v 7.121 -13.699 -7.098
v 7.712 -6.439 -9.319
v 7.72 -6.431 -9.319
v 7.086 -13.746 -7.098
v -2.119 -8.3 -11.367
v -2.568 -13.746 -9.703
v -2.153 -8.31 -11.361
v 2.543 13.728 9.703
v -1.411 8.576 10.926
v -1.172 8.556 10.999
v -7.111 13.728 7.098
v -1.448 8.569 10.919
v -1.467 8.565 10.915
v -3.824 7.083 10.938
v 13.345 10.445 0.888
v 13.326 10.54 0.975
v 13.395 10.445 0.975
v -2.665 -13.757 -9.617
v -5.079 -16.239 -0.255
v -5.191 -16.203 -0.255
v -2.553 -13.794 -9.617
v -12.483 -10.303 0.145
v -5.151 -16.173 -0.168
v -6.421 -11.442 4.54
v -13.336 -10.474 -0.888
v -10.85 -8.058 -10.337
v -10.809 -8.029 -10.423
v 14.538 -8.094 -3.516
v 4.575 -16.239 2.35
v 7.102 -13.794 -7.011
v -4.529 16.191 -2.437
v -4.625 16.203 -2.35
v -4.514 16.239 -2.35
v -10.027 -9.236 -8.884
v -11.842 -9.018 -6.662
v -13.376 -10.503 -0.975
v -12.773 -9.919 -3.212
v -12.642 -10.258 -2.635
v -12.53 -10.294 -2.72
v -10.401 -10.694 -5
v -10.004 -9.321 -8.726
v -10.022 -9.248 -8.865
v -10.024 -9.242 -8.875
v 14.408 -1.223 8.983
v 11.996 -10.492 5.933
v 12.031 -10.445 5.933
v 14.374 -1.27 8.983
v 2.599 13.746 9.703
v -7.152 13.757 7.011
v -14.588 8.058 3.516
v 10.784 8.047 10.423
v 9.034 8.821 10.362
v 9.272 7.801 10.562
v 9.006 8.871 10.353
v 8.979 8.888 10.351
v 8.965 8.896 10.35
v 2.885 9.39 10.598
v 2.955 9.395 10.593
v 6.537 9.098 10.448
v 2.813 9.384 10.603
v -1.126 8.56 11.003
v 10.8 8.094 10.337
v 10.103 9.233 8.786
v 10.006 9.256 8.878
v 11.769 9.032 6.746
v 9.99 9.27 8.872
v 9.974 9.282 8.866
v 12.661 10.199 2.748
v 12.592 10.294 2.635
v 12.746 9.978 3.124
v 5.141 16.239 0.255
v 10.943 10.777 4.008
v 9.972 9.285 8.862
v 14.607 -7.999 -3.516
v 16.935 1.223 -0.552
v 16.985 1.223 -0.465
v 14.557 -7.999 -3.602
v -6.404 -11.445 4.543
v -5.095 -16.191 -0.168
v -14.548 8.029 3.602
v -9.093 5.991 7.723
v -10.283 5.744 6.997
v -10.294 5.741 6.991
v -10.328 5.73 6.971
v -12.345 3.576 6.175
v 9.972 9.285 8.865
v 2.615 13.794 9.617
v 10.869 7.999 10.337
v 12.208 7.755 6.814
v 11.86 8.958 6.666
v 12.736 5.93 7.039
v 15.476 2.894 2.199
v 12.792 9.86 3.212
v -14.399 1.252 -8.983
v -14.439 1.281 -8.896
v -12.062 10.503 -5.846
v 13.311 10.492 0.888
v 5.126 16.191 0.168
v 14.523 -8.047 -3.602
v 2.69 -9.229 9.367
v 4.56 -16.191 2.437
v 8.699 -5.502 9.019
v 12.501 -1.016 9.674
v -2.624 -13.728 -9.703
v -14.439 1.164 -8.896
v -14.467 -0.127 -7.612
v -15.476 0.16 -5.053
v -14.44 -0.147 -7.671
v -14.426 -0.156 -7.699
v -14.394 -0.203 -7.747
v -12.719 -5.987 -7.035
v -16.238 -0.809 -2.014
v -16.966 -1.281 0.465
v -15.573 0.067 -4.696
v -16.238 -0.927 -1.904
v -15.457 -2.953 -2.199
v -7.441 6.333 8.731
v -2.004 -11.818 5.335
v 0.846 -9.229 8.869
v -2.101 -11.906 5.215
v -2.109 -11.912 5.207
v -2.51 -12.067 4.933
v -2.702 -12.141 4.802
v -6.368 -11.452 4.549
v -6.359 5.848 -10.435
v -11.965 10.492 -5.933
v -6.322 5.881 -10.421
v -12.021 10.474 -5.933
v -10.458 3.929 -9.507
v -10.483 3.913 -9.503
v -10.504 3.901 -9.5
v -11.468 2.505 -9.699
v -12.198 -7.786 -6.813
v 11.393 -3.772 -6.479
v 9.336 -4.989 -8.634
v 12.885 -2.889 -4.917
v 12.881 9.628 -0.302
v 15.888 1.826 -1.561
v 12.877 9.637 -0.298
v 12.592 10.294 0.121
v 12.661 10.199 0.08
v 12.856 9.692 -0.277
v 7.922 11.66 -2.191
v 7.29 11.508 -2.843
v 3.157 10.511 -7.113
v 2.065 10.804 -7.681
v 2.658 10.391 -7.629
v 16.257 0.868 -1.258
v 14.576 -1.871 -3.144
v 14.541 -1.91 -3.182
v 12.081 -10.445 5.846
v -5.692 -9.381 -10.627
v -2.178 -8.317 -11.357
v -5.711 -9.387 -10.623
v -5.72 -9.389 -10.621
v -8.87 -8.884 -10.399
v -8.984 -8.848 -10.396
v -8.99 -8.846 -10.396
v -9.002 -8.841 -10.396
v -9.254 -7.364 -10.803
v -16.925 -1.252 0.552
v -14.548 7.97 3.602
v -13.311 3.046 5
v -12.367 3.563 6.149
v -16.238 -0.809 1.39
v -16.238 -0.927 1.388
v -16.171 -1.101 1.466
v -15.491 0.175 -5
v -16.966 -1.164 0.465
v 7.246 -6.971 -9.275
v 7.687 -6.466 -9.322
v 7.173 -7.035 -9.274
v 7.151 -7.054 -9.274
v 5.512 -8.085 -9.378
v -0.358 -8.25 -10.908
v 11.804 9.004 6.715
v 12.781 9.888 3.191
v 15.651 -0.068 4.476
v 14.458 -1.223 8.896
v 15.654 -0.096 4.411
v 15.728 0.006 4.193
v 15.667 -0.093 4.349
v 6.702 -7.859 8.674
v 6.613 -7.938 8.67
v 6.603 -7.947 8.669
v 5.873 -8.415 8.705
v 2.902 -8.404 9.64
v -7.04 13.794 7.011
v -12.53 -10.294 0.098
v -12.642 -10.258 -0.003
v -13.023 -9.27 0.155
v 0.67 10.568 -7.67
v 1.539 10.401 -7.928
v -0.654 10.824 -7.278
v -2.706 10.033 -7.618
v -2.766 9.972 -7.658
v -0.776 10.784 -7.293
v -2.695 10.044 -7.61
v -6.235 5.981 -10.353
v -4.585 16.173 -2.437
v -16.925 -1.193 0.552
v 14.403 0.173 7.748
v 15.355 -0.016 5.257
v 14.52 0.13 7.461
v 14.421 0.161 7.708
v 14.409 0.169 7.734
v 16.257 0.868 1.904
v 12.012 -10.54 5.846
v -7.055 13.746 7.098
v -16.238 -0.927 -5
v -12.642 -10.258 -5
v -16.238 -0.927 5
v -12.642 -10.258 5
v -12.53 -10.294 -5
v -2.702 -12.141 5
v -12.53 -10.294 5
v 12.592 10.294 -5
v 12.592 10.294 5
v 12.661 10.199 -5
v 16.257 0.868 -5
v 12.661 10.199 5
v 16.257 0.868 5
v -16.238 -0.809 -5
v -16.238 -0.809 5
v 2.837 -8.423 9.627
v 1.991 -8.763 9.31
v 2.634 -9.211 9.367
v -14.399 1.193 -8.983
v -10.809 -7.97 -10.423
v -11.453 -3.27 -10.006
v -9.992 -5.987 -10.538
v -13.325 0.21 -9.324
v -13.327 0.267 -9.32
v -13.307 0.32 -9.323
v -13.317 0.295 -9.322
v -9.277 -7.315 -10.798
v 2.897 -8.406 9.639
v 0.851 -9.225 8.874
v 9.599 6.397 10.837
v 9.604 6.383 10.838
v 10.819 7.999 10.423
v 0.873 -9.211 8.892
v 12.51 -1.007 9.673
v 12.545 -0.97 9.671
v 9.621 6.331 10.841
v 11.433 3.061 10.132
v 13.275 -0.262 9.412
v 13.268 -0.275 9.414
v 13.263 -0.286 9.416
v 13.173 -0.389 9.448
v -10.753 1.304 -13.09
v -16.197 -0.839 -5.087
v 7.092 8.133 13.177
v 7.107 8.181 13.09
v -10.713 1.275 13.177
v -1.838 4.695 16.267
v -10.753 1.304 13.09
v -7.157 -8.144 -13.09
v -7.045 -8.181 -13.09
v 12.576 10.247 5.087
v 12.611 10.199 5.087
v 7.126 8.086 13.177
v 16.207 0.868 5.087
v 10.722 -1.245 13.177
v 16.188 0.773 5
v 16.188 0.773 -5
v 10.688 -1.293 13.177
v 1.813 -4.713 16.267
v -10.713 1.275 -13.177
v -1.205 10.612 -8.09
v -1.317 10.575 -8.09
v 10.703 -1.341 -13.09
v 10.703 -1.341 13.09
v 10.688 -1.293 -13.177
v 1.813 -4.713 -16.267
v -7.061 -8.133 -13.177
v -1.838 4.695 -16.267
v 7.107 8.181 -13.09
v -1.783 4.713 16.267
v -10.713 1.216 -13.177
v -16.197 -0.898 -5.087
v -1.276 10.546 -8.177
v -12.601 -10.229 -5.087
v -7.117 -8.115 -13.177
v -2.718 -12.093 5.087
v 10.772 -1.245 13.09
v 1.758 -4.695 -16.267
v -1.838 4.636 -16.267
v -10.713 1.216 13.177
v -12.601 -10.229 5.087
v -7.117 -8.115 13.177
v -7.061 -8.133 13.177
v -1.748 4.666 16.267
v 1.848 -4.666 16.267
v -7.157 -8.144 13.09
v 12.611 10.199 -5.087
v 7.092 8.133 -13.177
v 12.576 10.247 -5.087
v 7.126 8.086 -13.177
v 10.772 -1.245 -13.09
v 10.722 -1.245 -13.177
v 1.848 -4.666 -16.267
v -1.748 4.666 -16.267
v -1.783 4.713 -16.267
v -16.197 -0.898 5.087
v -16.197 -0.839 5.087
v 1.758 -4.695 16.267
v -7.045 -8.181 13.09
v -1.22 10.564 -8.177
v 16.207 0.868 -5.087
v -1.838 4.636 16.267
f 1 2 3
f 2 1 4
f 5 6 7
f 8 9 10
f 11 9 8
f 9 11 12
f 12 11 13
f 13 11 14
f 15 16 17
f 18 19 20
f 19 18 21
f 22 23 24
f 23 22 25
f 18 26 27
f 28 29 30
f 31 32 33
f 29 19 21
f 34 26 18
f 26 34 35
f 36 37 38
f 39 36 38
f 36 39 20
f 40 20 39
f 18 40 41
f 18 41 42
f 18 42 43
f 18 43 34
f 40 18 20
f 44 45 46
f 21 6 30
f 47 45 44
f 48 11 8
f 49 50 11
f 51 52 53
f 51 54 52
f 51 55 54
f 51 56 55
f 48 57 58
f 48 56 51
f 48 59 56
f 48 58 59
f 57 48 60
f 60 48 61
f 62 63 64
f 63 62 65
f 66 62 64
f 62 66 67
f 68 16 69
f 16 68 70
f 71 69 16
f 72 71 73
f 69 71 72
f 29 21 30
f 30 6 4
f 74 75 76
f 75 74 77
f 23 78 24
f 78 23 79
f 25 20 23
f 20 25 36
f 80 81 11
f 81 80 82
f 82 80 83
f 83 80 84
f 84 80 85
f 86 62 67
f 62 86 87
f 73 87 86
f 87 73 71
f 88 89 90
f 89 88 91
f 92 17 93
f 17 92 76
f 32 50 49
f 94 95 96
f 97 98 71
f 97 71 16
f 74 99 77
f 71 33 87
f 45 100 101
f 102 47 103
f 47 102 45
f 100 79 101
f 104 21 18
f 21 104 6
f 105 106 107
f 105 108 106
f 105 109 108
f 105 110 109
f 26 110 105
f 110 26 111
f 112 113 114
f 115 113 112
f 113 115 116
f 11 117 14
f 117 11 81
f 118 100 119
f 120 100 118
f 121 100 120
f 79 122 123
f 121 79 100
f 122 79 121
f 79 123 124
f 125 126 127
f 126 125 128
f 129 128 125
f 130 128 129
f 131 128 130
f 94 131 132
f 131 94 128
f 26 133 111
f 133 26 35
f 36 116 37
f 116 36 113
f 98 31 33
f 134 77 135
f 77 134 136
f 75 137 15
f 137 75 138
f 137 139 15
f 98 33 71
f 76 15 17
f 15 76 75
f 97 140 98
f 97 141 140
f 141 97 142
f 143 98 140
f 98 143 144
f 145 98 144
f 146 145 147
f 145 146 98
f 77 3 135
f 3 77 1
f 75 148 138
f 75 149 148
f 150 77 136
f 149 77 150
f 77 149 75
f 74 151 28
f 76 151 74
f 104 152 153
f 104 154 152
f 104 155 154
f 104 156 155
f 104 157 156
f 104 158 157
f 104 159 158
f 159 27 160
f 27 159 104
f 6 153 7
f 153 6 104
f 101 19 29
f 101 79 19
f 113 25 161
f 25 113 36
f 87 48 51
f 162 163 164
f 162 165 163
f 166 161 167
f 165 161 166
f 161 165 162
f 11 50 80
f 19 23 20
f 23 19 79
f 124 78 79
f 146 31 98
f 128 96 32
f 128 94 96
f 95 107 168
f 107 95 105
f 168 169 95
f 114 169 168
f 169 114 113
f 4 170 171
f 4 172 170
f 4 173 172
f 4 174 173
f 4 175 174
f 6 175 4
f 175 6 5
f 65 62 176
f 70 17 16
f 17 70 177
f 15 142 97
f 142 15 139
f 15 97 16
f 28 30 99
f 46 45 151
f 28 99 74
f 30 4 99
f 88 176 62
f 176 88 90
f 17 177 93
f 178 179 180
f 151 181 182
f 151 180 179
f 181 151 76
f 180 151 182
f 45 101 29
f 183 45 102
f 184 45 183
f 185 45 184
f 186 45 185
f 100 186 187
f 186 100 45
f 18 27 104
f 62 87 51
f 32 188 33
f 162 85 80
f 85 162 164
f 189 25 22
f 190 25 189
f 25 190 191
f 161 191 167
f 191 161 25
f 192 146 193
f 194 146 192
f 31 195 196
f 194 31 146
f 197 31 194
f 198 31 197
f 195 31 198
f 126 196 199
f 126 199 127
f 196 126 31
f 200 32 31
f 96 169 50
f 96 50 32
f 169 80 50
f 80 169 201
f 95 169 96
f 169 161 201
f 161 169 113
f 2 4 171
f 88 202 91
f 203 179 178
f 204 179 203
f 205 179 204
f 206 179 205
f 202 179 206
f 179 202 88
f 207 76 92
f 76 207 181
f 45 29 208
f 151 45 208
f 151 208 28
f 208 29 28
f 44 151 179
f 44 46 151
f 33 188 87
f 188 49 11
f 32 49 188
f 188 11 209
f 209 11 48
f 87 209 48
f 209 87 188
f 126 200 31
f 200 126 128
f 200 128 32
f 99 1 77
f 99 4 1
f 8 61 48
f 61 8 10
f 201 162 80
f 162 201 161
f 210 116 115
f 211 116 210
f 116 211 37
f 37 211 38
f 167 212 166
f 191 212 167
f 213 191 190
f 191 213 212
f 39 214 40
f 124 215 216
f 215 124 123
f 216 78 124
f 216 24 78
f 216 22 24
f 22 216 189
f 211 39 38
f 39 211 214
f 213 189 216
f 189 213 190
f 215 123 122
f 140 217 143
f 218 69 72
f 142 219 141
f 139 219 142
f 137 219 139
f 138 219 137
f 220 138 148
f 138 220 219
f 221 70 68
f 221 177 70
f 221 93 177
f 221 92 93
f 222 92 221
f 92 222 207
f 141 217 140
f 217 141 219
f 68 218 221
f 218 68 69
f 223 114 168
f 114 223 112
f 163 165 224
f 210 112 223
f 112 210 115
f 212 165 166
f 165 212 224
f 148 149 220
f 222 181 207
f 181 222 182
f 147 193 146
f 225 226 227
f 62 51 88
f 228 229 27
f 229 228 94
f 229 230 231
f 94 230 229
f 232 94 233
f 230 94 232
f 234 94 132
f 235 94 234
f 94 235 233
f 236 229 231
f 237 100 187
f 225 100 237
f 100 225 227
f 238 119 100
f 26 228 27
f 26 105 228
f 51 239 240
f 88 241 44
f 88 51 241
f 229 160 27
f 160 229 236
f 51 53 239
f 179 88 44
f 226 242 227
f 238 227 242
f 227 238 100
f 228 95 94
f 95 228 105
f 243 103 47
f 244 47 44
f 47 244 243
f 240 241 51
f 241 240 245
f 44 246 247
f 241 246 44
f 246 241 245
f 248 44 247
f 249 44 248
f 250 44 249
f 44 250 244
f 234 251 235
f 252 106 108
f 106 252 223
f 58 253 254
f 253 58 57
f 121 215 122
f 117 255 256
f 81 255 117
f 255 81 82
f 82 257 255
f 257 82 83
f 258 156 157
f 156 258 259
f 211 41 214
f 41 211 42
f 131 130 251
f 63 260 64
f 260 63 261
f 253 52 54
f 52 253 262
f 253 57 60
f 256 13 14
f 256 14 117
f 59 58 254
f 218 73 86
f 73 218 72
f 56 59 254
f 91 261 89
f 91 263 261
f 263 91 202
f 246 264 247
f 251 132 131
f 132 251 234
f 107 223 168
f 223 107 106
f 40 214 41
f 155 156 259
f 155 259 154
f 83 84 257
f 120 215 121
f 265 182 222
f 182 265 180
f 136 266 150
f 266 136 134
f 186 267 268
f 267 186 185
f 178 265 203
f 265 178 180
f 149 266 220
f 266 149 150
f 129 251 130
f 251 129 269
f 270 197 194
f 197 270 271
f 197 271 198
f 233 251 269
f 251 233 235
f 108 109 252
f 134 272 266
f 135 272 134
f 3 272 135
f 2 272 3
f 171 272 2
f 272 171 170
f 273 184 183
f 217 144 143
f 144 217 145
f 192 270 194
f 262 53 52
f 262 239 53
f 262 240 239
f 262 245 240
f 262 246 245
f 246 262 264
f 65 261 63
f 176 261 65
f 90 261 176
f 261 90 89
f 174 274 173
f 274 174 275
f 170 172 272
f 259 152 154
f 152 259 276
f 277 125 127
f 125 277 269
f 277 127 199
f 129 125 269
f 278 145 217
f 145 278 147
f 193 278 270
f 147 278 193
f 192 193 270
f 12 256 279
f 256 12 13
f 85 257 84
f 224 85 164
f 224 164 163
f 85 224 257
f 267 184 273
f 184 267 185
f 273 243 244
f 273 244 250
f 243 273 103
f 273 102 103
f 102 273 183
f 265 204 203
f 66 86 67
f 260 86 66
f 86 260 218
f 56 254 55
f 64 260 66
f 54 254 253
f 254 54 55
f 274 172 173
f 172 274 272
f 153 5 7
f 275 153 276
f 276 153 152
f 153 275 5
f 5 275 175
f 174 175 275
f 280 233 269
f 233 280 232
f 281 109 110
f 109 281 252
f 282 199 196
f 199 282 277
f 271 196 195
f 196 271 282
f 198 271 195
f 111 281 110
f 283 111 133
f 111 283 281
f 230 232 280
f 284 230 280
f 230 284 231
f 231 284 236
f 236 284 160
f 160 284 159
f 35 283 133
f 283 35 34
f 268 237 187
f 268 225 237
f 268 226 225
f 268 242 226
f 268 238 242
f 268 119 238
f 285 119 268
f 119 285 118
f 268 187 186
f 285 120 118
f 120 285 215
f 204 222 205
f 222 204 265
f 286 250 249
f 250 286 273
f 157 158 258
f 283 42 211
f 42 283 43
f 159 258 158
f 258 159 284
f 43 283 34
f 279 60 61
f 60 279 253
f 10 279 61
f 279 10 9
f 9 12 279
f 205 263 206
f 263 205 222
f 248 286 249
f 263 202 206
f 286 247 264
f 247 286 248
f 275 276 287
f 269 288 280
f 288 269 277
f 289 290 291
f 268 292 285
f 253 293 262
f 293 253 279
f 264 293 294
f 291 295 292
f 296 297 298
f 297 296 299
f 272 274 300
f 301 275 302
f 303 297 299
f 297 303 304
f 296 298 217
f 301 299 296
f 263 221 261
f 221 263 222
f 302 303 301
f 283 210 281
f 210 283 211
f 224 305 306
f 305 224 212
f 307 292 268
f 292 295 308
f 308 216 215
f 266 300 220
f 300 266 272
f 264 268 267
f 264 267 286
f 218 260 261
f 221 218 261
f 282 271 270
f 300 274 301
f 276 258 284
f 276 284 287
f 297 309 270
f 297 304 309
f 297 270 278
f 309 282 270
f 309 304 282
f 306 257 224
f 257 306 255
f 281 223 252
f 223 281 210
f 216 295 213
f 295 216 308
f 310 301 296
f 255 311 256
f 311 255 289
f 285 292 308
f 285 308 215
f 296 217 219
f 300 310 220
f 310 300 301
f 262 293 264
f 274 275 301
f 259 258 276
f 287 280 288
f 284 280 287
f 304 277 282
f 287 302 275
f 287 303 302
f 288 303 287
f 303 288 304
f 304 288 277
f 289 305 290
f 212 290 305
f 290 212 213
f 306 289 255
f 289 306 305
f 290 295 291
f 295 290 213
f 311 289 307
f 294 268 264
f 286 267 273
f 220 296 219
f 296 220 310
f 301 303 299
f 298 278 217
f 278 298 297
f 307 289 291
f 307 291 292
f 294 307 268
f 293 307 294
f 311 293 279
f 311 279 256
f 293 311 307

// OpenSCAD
// Auto-generated OpenSCAD file

    inner_points = 10*[[-1.6157030013132576, -0.08682050620151305, 0.5000000000001401], [-1.256099372783235, -1.0199256612339145, 0.5000000000000209], [1.256099372783235, 1.0199256612339145, -0.5000000000000209], [1.6157030013132576, 0.08682050620151305, -0.5000000000001401], [-1.067237552347056, 0.12454920331922015, 1.3090169943750567], [-0.7076339238170337, -0.8085559517131813, 1.3090169943749375], [-1.615703001313349, -0.08682050620142057, -0.4999999999998599], [-1.2560993727833267, -1.019925661233822, -0.49999999999997924], [1.2560993727833267, 1.019925661233822, 0.49999999999997924], [1.615703001313349, 0.08682050620142057, 0.4999999999998599], [0.7076339238170337, 0.8085559517131813, -1.3090169943749375], [1.067237552347056, -0.12454920331922015, -1.3090169943750567], [-0.17980181426486283, 0.466552577516051, 1.6180339887499544], [0.17980181426515948, -0.46655257751635026, 1.6180339887498354], [-1.0672375523472961, 0.12454920331946218, -1.3090169943748382], [-0.7076339238172737, -0.808555951712939, -1.3090169943749572], [0.7076339238172737, 0.808555951712939, 1.3090169943749572], [1.0672375523472961, -0.12454920331946218, 1.3090169943748382], [-0.17980181426515948, 0.46655257751635026, -1.6180339887498354], [0.17980181426486283, -0.466552577516051, -1.6180339887499544], [-1.0110111624566542, 0.7096390219731582, 0.5000000000001583], [-0.273297902828303, -1.2045909548178053, 0.4999999999999137], [0.4248900245915921, 1.2630121056908719, 7.782663402622347e-14], [1.1626032842199434, -0.6512178711000915, -1.6681100944992977e-13], [-1.011011162456746, 0.7096390219732508, -0.4999999999998417], [-0.2732979028283946, -1.2045909548177127, -0.5000000000000864], [-0.1235754243746093, 1.0516423961701389, -0.8090169943748389], [0.6141378352537419, -0.8625875806208246, -0.8090169943750836], [-0.12357542437446101, 1.0516423961699892, 0.809016994375056], [0.6141378352538901, -0.8625875806209743, 0.8090169943748112]];

    outer_points = 10*[[1.4358365361613323, -0.12226738097965391, 0.8896393188941789], [1.6884671298168779, 0.12226738097965391, -0.04651266307389418], [-1.6884671298168779, -0.12226738097965391, 0.04651266307389418], [-1.4358365361613323, 0.12226738097965391, -0.8896393188941789], [1.076899131358998, 0.7999155599973826, 1.0336621046077892], [1.3295297250145435, 1.0444503219566905, 0.09751012263971623], [1.1980850363497777, -1.0444503219566905, 0.5845936703294112], [1.4507156300053232, -0.7999155599973826, -0.35155831163866175], [-1.4507156300053232, 0.7999155599973826, 0.35155831163866175], [-1.1980850363497777, 1.0444503219566905, -0.5845936703294112], [-1.3295297250145435, -1.0444503219566905, -0.09751012263971623], [-1.076899131358998, -0.7999155599973826, -1.0336621046077892], [0.2583747107435867, 1.3698559613665295, 0.9616502184820862], [0.5110053043991324, 1.6143907233258374, 0.025498236514013117], [0.4544576239760838, -1.6143907233258374, 0.23504222854497203], [0.7070882176316295, -1.3698559613665295, -0.7011097534231011], [-0.7070882176316295, 1.3698559613665295, 0.7011097534231011], [-0.4544576239760838, 1.6143907233258374, -0.23504222854497203], [-0.5110053043991324, -1.6143907233258374, -0.025498236514013117], [-0.2583747107435867, -1.3698559613665295, -0.9616502184820862], [0.5051973765349485, 0.004058182780676878, 1.233081608821516], [1.023459496106188, 0.5057120094532936, -0.6873988183317695], [-1.0569544564541566, 0.004058182780676878, 0.8115182809113736], [-0.538692336882917, 0.5057120094532936, -1.108962146241912], [0.2674458767233939, -0.9181247581963599, 0.9280359602567483], [0.7857079962946336, -0.416470931523743, -0.9924444668965372], [-0.6980170516518223, -0.9181247581963599, 0.6674954951977632], [-0.17975493208058263, -0.416470931523743, -1.2529849319555224], [-0.3133270440804627, 0.5739985841498236, 1.1610697226958127], [0.2049350754907769, 1.0756524108224406, -0.7594107044574727]];

    // Convex hull for inner set (I)
    module inner_hull() {
        hull() {
            for (p = inner_points) {
                translate(p) sphere(r=0.1);
            }
        }
    }

    // Convex hull for outer set (O) minus inner hull (O \ I)
    module outer_minus_inner() {
        difference() {
            hull() {
                for (p = outer_points) {
                    translate(p) sphere(r=0.1);
                }
            }
            inner_hull(); // Subtract inner hull
        }
    }

    // Convex hull for outer set (O) minus all translated inner hulls
    module outer_minus_AllTranslationInner() {
        difference() {
            hull() {
                for (p = outer_points) {
                    translate(p) sphere(r=0.1);
                }
            }
            hull() {
                translate([0,0,50]) inner_hull();
                translate([0,0,-50]) inner_hull();
            }; // Subtract translated inner hulls
        }
    }

    // Difference between outer_minus_inner and outer_minus_AllTranslationInner
    module outer_minus_inner_diff() {
        difference() {
            // Outer minus inner
            difference() {
                hull() {
                    for (p = outer_points) {
                        translate(p) sphere(r=0.1);
                    }
                }
                inner_hull();
            }

            // Subtract Outer minus AllTranslationInner
            difference() {
                hull() {
                    for (p = outer_points) {
                        translate(p) sphere(r=0.1);
                    }
                }
                hull() {
                    translate([0,0,50]) inner_hull();
                    translate([0,0,-50]) inner_hull();
                };
            }
        }
    }

    // Rendering all with colors applied
    color([1, 0, 0, 0.5]) inner_hull(); // Transparent red
    color([0, 1, 0, 1]) outer_minus_AllTranslationInner(); // Opaque green
    color([1, 1, 0, 1]) outer_minus_inner_diff(); // Opaque yellow
    
